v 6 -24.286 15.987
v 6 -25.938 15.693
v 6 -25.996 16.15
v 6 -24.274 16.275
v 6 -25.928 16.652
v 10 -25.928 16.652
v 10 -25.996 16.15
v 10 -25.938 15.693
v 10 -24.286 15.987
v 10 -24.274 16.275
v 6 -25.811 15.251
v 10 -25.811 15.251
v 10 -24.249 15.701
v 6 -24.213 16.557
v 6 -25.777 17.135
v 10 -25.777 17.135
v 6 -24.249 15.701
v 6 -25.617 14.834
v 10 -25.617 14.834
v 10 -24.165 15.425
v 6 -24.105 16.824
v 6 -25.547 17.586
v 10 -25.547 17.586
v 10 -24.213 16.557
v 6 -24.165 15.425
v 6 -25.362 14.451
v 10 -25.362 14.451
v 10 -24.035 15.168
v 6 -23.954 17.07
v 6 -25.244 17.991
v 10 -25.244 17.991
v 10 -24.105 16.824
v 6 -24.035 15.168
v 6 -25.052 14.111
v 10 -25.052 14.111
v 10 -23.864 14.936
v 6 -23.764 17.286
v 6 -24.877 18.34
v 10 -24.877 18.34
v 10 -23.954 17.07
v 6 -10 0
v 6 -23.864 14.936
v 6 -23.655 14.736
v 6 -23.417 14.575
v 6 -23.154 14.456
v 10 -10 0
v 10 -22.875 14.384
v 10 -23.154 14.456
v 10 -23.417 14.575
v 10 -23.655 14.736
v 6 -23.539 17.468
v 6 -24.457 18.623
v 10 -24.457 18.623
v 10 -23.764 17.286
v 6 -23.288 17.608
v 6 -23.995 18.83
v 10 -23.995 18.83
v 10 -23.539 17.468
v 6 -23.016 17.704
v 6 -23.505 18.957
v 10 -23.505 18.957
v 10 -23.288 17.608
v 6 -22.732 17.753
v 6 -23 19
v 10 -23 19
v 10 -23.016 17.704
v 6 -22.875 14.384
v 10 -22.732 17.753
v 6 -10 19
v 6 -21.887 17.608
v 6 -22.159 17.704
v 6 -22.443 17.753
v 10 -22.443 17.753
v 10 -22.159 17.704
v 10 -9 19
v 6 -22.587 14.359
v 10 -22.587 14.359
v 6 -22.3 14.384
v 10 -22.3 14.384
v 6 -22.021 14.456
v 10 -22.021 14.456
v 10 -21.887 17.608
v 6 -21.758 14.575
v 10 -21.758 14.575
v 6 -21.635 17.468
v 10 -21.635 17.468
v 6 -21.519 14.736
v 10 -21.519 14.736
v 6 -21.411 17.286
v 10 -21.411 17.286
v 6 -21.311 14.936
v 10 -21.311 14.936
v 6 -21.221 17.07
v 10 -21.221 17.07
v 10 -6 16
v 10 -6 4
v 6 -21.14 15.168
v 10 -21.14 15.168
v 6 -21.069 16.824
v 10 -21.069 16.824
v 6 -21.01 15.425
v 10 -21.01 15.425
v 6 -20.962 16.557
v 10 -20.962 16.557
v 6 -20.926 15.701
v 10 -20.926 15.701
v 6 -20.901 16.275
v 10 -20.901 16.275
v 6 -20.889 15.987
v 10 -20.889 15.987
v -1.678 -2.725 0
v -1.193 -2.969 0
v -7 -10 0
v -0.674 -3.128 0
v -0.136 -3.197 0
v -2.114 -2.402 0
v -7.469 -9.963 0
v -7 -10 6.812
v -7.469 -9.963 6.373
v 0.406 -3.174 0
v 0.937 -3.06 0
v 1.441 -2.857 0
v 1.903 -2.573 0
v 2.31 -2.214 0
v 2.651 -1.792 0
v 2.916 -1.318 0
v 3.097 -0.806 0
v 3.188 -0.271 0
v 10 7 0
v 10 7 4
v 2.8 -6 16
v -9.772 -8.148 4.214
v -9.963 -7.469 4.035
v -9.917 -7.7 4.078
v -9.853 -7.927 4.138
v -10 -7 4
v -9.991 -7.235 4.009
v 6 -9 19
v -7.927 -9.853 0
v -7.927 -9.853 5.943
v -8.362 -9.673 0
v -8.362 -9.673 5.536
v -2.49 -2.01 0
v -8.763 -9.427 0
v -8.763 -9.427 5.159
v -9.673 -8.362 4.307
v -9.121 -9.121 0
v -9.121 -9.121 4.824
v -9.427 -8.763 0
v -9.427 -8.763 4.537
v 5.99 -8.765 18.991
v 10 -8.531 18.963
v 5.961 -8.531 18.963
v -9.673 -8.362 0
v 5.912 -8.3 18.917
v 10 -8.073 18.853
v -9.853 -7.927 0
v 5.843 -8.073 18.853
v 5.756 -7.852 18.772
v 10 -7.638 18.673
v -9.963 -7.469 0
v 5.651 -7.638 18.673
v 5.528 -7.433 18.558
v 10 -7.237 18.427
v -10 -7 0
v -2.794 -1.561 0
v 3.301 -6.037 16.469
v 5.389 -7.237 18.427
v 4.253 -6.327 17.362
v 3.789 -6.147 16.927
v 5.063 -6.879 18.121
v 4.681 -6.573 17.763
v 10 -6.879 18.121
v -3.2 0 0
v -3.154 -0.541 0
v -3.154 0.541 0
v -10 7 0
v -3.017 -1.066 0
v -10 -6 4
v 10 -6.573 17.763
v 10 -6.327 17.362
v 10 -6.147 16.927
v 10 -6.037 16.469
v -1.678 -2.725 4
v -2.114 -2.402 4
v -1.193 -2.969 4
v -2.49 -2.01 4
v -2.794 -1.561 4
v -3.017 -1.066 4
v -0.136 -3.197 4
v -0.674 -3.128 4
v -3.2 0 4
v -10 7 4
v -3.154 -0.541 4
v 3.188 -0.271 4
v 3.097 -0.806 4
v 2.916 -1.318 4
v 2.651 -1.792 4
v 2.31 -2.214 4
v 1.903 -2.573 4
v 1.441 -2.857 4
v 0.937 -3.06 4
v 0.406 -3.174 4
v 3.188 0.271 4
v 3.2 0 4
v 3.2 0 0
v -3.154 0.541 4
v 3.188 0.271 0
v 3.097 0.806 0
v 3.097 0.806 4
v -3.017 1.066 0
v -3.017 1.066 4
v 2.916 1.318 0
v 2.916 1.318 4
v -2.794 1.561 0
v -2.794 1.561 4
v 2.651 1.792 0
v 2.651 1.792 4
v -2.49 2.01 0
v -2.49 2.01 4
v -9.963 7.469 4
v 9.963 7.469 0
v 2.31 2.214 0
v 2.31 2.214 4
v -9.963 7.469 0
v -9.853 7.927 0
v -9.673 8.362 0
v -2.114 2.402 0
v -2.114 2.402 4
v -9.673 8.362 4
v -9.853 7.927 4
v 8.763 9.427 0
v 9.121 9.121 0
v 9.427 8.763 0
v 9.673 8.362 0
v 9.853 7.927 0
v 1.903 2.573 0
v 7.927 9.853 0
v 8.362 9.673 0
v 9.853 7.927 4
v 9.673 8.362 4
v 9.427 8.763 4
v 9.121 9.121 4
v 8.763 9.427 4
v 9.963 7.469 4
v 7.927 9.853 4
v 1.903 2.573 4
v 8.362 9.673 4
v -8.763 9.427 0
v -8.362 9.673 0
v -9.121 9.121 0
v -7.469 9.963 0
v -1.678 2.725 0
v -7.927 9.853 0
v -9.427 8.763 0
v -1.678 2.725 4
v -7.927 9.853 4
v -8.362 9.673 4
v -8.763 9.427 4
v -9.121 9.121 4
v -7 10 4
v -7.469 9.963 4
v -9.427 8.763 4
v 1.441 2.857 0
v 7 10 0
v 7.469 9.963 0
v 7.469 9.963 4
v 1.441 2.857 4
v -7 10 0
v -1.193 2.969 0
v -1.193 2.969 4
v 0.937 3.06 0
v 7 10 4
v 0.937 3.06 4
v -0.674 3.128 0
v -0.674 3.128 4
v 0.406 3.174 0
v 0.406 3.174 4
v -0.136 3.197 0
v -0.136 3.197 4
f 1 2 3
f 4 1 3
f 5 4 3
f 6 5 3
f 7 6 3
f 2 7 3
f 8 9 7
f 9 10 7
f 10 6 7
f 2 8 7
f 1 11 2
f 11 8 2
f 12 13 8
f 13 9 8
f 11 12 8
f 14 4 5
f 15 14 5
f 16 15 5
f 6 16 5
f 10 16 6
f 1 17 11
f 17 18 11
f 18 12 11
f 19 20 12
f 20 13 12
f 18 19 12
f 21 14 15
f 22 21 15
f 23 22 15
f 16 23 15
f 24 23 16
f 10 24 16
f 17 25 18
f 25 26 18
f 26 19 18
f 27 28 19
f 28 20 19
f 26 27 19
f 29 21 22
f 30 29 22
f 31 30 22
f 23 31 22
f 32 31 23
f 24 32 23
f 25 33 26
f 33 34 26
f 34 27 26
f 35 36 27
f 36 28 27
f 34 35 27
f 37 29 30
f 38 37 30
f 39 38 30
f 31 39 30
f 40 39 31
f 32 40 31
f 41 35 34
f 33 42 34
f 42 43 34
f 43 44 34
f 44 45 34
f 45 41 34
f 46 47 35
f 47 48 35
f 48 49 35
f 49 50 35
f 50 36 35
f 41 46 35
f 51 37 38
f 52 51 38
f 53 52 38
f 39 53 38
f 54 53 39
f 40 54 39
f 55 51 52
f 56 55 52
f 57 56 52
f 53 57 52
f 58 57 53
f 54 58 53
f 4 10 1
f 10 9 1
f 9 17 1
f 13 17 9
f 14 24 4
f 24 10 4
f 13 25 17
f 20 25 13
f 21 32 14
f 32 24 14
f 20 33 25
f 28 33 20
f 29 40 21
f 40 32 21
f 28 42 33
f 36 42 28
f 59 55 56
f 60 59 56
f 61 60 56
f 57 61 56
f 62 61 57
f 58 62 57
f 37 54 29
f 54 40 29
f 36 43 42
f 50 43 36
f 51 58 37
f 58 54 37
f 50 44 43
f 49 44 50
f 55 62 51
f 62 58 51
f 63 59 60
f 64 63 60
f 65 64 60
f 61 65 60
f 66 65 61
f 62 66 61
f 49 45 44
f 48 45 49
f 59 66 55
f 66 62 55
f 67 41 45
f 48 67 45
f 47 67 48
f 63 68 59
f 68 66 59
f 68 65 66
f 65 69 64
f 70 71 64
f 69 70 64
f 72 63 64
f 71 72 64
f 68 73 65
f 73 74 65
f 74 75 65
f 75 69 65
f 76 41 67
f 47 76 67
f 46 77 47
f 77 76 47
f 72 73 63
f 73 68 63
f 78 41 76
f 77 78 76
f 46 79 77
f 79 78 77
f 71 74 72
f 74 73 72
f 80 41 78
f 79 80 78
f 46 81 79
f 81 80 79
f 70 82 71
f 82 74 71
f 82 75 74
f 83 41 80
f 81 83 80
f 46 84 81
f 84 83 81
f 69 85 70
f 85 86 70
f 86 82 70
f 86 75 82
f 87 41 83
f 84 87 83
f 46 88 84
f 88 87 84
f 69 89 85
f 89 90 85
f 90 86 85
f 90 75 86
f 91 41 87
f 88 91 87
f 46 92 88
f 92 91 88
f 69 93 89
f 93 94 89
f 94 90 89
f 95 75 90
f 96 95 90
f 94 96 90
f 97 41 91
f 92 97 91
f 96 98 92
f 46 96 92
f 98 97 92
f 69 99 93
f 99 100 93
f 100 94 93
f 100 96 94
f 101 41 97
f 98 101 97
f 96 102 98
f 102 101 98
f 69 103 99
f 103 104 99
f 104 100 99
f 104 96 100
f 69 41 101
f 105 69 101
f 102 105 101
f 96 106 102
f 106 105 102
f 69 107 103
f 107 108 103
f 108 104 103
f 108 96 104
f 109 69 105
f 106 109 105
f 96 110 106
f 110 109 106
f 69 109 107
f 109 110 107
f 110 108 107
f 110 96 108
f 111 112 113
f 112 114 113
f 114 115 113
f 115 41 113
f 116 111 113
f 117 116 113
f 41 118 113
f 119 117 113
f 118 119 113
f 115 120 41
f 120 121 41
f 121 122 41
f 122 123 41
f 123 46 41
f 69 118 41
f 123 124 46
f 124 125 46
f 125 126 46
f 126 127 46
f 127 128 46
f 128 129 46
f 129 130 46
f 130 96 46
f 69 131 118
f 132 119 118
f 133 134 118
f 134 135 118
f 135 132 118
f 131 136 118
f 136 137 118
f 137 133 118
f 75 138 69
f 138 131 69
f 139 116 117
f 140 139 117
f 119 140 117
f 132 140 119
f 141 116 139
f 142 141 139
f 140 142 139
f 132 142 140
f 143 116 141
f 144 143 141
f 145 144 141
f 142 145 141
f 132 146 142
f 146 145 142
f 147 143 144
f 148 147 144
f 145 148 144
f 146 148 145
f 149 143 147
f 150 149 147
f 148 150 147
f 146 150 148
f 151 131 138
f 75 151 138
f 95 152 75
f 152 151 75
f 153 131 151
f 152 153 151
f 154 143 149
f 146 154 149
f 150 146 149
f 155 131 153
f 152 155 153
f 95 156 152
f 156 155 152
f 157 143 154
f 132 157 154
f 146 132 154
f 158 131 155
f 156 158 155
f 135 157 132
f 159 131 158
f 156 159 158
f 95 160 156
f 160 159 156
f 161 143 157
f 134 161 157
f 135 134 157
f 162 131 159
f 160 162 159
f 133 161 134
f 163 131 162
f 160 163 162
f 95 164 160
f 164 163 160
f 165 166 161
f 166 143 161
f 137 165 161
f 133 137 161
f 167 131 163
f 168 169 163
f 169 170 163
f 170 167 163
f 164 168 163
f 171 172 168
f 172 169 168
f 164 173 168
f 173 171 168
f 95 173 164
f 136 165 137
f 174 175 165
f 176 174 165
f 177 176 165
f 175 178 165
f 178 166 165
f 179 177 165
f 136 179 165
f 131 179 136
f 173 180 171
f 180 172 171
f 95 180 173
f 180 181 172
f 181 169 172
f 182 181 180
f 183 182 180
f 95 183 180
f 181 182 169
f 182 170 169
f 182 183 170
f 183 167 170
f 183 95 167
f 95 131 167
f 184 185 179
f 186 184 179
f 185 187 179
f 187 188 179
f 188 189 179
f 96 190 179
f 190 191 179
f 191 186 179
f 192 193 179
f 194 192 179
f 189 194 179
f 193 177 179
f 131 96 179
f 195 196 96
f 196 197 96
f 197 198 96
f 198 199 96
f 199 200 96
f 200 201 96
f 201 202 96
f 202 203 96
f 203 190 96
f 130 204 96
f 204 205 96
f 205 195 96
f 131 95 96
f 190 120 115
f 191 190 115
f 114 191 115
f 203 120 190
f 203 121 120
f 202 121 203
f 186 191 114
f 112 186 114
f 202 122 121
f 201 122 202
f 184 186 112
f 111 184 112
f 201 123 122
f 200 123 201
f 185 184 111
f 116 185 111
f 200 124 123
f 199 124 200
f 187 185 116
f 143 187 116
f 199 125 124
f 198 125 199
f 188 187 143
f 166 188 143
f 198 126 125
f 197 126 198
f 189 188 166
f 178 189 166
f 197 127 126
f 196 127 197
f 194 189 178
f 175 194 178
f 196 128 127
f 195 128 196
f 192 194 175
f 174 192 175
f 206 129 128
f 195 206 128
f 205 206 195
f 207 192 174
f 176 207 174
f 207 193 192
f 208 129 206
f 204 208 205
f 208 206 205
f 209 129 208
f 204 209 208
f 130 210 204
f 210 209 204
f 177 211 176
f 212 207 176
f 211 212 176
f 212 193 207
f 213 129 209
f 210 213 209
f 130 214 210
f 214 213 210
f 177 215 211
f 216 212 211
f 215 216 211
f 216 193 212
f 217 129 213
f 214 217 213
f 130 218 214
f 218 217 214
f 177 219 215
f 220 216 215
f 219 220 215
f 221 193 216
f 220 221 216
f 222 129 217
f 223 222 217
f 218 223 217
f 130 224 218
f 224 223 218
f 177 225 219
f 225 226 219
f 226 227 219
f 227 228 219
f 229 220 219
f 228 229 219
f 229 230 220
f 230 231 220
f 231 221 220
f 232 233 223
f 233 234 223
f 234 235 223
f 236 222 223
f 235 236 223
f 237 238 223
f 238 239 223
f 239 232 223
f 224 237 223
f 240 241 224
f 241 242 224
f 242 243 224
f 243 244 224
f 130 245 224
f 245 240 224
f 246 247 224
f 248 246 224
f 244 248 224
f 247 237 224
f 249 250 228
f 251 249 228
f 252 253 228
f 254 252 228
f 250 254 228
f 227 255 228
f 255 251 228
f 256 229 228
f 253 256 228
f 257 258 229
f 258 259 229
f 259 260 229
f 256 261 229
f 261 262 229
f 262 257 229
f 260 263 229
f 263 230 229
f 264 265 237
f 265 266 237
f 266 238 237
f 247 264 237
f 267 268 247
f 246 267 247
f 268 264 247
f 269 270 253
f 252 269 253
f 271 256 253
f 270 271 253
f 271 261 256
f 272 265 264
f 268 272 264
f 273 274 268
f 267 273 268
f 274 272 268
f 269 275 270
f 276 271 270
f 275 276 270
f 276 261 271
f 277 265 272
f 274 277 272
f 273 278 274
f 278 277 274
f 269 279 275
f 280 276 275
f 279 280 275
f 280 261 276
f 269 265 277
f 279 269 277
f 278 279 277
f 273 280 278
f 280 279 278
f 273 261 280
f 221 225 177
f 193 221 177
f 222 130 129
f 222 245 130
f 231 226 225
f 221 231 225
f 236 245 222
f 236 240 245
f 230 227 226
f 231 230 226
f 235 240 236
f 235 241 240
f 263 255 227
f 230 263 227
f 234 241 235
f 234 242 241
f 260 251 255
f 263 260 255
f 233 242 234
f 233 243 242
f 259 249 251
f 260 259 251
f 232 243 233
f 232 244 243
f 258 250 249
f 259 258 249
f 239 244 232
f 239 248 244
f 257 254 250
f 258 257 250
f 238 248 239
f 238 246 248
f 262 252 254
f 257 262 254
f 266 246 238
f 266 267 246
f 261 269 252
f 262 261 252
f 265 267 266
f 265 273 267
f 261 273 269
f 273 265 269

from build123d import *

# Parameters (mm, degrees)
SKETCH1_W           = 20
SKETCH1_H           = 20
SKETCH1_R           = 3.2
BOSS_EXTRUDE1_DEPTH = 4
SKETCH2_W           = 20
SKETCH2_H           = 4
BOSS_EXTRUDE2_DEPTH = 15
CUT_EXTRUDE1_DEPTH  = 15
BOSS_EXTRUDE3_DEPTH = 4
SKETCH5_R           = 1.7
CUT_EXTRUDE2_DEPTH  = 4
FILLET1_R           = 3
FILLET2_R           = 3


with BuildPart() as part:
    # Sketch1 → Boss-Extrude1 (new body)
    with BuildSketch(Plane.XY):
        Rectangle(SKETCH1_W, SKETCH1_H)
        Circle(SKETCH1_R, mode=Mode.SUBTRACT)
    extrude(amount=BOSS_EXTRUDE1_DEPTH)

    # Sketch2 → Boss-Extrude2 (add)
    with BuildSketch(Plane.XY.offset(4)):
        with Locations((0, -8)):
            Rectangle(SKETCH2_W, SKETCH2_H)
    extrude(amount=BOSS_EXTRUDE2_DEPTH)

    # Sketch3 → Cut-Extrude1 (cut)
    with BuildSketch(Plane(origin=(0, -6, 0), x_dir=(1, 0, 0), z_dir=(0, 1, 0))):
        Polygon((-10, -19), (-10, -4), (6, -19), align=None)
    extrude(amount=-CUT_EXTRUDE1_DEPTH, mode=Mode.SUBTRACT)

    # Sketch4 → Boss-Extrude3 (add)
    with BuildSketch(Plane(origin=(10, 0, 0), x_dir=(0, 0, -1), z_dir=(1, 0, 0))):
        Polygon((0, -10), (-15, -26), (-19, -26), (-19, -10), align=None)
    extrude(amount=-BOSS_EXTRUDE3_DEPTH)

    # Sketch5 → Cut-Extrude2 (cut)
    with BuildSketch(Plane(origin=(10, 0, 0), x_dir=(0, 0, -1), z_dir=(1, 0, 0))):
        with Locations((-16.059117511, -22.587455859)):
            Circle(SKETCH5_R)
    extrude(amount=-CUT_EXTRUDE2_DEPTH, mode=Mode.SUBTRACT)

    # Fillet1
    # the kernel refuses this fillet: 3 mm, written as the material it takes off along each edge
    with BuildSketch(Plane(origin=(13.249240093, -26, 15), x_dir=(0, 0.7295372041400854, -0.6839411288813294), z_dir=(-1, 0, 0))) as fillet1_piece_1:
        with BuildLine():
            CenterArc((FILLET1_R * 0.433232012466, -FILLET1_R), FILLET1_R, 90, 46.847610266)
            Line((-FILLET1_R * 0.296305191674, -FILLET1_R * 0.316058871119), (0, 0))
            Line((0, 0), (FILLET1_R * 0.433232012466, 0))
        make_face()
    extrude(amount=10.498480187, mode=Mode.SUBTRACT)
    with BuildSketch(Plane(origin=(17.5, -26, 19), x_dir=(0, 0, -1), z_dir=(-1, 0, 0))) as fillet1_piece_2:
        with BuildLine():
            CenterArc((FILLET1_R, -FILLET1_R), FILLET1_R, 90, 90)
            Line((0, -FILLET1_R), (0, 0))
            Line((0, 0), (FILLET1_R, 0))
        make_face()
    extrude(amount=19, mode=Mode.SUBTRACT)

    # Fillet2
    fillet2_edges = [part.edges().sort_by_distance(p)[0] for p in [
        (8, -6, 19),
        (-10, -10, 2),
        (-10, 10, 2),
        (10, 10, 2),
    ]]
    fillet(fillet2_edges, radius=FILLET2_R)


solid = part.part
